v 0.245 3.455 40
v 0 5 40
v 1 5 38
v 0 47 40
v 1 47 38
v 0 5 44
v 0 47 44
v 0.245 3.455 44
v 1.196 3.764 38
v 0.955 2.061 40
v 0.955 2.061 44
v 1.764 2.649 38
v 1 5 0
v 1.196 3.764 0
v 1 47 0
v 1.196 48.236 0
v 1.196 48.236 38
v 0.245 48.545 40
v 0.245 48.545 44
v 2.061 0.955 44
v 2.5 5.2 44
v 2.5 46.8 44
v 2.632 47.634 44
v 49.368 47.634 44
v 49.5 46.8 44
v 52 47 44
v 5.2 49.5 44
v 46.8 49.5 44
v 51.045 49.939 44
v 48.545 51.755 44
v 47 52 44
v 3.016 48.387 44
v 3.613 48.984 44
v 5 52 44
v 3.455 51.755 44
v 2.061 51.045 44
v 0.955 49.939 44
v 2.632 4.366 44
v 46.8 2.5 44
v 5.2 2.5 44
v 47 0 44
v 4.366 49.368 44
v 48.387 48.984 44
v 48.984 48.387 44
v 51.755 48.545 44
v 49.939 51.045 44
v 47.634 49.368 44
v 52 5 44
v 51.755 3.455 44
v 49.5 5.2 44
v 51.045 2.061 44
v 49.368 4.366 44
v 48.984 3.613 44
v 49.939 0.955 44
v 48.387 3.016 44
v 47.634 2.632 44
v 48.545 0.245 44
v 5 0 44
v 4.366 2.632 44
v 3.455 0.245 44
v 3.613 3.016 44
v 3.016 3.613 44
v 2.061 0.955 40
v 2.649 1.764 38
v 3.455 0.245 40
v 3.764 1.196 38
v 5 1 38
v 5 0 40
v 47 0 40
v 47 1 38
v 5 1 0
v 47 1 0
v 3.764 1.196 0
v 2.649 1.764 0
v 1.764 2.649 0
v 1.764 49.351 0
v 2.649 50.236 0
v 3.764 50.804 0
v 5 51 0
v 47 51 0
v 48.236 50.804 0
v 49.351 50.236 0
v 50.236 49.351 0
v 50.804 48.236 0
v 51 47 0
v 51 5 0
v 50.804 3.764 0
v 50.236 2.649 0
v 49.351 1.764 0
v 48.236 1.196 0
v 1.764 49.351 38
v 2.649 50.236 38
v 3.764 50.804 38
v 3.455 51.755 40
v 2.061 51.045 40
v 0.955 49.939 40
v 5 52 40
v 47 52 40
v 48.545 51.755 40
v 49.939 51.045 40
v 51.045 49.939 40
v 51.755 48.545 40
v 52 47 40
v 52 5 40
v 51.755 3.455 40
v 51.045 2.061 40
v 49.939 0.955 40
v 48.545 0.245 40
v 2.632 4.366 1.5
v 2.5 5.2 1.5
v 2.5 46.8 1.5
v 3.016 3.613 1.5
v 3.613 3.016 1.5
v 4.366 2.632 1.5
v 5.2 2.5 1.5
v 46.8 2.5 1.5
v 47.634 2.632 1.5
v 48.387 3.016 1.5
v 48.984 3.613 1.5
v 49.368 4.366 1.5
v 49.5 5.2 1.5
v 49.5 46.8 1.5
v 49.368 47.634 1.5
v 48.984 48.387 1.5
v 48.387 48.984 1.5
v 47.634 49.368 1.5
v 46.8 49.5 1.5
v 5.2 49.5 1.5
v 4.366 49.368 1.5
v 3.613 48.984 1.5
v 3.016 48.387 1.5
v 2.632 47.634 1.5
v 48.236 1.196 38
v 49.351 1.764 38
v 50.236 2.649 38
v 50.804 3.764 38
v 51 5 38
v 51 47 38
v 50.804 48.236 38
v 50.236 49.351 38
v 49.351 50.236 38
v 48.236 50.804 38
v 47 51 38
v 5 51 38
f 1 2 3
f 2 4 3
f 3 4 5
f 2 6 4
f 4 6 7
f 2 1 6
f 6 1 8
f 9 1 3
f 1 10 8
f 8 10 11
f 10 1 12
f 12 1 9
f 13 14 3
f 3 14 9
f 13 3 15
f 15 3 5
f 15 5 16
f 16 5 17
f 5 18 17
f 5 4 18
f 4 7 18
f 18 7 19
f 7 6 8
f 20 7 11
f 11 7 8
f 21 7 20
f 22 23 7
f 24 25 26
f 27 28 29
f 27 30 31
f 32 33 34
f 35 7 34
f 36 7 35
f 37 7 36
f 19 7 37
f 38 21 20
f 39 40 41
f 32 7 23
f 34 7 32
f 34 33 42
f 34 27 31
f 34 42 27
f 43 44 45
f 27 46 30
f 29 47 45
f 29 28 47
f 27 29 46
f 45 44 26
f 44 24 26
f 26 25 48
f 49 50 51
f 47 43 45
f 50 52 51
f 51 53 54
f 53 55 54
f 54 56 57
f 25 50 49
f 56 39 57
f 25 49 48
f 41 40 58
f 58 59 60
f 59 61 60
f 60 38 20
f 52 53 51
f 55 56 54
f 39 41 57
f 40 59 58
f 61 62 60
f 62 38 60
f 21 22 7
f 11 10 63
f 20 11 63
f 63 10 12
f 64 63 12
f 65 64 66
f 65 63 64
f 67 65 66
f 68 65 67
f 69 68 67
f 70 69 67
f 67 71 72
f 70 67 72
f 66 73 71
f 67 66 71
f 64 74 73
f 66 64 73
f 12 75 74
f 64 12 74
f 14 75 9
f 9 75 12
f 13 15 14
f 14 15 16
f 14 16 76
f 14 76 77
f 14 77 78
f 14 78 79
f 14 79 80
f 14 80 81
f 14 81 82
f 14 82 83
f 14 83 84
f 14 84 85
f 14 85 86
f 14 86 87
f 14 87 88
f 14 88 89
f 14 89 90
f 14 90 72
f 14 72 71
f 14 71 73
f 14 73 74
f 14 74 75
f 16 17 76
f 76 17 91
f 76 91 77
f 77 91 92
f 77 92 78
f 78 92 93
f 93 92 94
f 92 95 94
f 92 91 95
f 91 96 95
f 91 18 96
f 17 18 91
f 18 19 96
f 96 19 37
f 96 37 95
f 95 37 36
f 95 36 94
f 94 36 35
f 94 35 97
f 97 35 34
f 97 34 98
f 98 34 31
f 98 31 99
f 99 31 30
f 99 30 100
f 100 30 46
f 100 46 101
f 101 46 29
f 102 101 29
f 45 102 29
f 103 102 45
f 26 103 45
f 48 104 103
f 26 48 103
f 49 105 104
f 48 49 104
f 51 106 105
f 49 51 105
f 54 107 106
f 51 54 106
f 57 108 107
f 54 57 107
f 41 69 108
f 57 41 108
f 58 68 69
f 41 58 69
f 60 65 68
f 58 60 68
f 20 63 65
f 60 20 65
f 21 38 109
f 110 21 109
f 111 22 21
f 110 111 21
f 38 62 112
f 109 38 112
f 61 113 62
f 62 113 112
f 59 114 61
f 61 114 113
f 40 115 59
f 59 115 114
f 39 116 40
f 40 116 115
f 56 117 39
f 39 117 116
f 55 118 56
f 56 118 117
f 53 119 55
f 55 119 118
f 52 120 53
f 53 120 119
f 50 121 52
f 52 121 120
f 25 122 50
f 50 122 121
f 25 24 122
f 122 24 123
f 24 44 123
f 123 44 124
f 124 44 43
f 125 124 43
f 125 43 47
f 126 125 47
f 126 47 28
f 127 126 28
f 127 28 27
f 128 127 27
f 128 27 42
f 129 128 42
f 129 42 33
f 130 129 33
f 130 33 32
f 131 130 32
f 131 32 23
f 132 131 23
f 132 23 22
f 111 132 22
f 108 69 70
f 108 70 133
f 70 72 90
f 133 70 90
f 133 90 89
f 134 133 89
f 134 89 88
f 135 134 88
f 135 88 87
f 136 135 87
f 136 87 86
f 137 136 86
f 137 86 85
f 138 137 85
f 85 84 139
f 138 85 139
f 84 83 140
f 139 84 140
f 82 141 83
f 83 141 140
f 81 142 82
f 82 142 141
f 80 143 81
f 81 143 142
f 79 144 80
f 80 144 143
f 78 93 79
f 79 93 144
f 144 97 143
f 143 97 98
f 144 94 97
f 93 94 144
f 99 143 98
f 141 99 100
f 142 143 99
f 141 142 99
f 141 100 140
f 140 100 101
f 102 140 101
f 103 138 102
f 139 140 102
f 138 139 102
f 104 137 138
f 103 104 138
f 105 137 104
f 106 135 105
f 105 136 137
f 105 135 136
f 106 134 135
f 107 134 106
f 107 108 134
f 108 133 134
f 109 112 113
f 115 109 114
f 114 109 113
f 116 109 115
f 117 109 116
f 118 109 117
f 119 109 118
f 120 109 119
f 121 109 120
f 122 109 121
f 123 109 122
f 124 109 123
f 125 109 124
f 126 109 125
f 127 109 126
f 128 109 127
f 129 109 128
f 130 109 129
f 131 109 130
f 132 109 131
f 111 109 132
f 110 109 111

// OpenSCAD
module rounded_rectangle(size, r = 4, $fn = 20) {
	translations = [
		[r,         r,         0],
		[size[0]-r, r,         0],
		[size[0]-r, size[1]-r, 0],
		[r,         size[1]-r, 0]
	];

	hull() {
		for (v = translations) {
			translate(v = v)
			cylinder(h = size[2], r = r);
		}
	}
}

module tray_box(size, r = 4) {
	translate(v = [1, 1, 0])
	rounded_rectangle(size = [size[0]-2, size[1]-2, size[2]], r = r);
}

module tray_interior(size) {
	translate(v = [1.5, 1.5, 1.5])
	tray_box(size = [size[0]-3, size[1]-3, size[2]-1], r = 2.7);
}

module tray_lip(size, height = 4) {
	hull() {
		translate(v = [0, 0, size[2]-height])
		rounded_rectangle(size = [size[0], size[1], height], r = 5);
	
		translate(v = [1, 1, size[2]-height-2])
		rounded_rectangle(size = [size[0]-2, size[1]-2, 1]);
	}
}

module tray(size = [52, 52, 44], center = false) {
	translate(v = [
		center ? -size[0]/2 : 0,
		center ? -size[1]/2 : 0,
		center ? -size[2]/2 : 0
	])
	difference() {
		union() {
			tray_box(size = size);
			tray_lip(size = size);
		}
		tray_interior(size = size);
	}
}

tray();
